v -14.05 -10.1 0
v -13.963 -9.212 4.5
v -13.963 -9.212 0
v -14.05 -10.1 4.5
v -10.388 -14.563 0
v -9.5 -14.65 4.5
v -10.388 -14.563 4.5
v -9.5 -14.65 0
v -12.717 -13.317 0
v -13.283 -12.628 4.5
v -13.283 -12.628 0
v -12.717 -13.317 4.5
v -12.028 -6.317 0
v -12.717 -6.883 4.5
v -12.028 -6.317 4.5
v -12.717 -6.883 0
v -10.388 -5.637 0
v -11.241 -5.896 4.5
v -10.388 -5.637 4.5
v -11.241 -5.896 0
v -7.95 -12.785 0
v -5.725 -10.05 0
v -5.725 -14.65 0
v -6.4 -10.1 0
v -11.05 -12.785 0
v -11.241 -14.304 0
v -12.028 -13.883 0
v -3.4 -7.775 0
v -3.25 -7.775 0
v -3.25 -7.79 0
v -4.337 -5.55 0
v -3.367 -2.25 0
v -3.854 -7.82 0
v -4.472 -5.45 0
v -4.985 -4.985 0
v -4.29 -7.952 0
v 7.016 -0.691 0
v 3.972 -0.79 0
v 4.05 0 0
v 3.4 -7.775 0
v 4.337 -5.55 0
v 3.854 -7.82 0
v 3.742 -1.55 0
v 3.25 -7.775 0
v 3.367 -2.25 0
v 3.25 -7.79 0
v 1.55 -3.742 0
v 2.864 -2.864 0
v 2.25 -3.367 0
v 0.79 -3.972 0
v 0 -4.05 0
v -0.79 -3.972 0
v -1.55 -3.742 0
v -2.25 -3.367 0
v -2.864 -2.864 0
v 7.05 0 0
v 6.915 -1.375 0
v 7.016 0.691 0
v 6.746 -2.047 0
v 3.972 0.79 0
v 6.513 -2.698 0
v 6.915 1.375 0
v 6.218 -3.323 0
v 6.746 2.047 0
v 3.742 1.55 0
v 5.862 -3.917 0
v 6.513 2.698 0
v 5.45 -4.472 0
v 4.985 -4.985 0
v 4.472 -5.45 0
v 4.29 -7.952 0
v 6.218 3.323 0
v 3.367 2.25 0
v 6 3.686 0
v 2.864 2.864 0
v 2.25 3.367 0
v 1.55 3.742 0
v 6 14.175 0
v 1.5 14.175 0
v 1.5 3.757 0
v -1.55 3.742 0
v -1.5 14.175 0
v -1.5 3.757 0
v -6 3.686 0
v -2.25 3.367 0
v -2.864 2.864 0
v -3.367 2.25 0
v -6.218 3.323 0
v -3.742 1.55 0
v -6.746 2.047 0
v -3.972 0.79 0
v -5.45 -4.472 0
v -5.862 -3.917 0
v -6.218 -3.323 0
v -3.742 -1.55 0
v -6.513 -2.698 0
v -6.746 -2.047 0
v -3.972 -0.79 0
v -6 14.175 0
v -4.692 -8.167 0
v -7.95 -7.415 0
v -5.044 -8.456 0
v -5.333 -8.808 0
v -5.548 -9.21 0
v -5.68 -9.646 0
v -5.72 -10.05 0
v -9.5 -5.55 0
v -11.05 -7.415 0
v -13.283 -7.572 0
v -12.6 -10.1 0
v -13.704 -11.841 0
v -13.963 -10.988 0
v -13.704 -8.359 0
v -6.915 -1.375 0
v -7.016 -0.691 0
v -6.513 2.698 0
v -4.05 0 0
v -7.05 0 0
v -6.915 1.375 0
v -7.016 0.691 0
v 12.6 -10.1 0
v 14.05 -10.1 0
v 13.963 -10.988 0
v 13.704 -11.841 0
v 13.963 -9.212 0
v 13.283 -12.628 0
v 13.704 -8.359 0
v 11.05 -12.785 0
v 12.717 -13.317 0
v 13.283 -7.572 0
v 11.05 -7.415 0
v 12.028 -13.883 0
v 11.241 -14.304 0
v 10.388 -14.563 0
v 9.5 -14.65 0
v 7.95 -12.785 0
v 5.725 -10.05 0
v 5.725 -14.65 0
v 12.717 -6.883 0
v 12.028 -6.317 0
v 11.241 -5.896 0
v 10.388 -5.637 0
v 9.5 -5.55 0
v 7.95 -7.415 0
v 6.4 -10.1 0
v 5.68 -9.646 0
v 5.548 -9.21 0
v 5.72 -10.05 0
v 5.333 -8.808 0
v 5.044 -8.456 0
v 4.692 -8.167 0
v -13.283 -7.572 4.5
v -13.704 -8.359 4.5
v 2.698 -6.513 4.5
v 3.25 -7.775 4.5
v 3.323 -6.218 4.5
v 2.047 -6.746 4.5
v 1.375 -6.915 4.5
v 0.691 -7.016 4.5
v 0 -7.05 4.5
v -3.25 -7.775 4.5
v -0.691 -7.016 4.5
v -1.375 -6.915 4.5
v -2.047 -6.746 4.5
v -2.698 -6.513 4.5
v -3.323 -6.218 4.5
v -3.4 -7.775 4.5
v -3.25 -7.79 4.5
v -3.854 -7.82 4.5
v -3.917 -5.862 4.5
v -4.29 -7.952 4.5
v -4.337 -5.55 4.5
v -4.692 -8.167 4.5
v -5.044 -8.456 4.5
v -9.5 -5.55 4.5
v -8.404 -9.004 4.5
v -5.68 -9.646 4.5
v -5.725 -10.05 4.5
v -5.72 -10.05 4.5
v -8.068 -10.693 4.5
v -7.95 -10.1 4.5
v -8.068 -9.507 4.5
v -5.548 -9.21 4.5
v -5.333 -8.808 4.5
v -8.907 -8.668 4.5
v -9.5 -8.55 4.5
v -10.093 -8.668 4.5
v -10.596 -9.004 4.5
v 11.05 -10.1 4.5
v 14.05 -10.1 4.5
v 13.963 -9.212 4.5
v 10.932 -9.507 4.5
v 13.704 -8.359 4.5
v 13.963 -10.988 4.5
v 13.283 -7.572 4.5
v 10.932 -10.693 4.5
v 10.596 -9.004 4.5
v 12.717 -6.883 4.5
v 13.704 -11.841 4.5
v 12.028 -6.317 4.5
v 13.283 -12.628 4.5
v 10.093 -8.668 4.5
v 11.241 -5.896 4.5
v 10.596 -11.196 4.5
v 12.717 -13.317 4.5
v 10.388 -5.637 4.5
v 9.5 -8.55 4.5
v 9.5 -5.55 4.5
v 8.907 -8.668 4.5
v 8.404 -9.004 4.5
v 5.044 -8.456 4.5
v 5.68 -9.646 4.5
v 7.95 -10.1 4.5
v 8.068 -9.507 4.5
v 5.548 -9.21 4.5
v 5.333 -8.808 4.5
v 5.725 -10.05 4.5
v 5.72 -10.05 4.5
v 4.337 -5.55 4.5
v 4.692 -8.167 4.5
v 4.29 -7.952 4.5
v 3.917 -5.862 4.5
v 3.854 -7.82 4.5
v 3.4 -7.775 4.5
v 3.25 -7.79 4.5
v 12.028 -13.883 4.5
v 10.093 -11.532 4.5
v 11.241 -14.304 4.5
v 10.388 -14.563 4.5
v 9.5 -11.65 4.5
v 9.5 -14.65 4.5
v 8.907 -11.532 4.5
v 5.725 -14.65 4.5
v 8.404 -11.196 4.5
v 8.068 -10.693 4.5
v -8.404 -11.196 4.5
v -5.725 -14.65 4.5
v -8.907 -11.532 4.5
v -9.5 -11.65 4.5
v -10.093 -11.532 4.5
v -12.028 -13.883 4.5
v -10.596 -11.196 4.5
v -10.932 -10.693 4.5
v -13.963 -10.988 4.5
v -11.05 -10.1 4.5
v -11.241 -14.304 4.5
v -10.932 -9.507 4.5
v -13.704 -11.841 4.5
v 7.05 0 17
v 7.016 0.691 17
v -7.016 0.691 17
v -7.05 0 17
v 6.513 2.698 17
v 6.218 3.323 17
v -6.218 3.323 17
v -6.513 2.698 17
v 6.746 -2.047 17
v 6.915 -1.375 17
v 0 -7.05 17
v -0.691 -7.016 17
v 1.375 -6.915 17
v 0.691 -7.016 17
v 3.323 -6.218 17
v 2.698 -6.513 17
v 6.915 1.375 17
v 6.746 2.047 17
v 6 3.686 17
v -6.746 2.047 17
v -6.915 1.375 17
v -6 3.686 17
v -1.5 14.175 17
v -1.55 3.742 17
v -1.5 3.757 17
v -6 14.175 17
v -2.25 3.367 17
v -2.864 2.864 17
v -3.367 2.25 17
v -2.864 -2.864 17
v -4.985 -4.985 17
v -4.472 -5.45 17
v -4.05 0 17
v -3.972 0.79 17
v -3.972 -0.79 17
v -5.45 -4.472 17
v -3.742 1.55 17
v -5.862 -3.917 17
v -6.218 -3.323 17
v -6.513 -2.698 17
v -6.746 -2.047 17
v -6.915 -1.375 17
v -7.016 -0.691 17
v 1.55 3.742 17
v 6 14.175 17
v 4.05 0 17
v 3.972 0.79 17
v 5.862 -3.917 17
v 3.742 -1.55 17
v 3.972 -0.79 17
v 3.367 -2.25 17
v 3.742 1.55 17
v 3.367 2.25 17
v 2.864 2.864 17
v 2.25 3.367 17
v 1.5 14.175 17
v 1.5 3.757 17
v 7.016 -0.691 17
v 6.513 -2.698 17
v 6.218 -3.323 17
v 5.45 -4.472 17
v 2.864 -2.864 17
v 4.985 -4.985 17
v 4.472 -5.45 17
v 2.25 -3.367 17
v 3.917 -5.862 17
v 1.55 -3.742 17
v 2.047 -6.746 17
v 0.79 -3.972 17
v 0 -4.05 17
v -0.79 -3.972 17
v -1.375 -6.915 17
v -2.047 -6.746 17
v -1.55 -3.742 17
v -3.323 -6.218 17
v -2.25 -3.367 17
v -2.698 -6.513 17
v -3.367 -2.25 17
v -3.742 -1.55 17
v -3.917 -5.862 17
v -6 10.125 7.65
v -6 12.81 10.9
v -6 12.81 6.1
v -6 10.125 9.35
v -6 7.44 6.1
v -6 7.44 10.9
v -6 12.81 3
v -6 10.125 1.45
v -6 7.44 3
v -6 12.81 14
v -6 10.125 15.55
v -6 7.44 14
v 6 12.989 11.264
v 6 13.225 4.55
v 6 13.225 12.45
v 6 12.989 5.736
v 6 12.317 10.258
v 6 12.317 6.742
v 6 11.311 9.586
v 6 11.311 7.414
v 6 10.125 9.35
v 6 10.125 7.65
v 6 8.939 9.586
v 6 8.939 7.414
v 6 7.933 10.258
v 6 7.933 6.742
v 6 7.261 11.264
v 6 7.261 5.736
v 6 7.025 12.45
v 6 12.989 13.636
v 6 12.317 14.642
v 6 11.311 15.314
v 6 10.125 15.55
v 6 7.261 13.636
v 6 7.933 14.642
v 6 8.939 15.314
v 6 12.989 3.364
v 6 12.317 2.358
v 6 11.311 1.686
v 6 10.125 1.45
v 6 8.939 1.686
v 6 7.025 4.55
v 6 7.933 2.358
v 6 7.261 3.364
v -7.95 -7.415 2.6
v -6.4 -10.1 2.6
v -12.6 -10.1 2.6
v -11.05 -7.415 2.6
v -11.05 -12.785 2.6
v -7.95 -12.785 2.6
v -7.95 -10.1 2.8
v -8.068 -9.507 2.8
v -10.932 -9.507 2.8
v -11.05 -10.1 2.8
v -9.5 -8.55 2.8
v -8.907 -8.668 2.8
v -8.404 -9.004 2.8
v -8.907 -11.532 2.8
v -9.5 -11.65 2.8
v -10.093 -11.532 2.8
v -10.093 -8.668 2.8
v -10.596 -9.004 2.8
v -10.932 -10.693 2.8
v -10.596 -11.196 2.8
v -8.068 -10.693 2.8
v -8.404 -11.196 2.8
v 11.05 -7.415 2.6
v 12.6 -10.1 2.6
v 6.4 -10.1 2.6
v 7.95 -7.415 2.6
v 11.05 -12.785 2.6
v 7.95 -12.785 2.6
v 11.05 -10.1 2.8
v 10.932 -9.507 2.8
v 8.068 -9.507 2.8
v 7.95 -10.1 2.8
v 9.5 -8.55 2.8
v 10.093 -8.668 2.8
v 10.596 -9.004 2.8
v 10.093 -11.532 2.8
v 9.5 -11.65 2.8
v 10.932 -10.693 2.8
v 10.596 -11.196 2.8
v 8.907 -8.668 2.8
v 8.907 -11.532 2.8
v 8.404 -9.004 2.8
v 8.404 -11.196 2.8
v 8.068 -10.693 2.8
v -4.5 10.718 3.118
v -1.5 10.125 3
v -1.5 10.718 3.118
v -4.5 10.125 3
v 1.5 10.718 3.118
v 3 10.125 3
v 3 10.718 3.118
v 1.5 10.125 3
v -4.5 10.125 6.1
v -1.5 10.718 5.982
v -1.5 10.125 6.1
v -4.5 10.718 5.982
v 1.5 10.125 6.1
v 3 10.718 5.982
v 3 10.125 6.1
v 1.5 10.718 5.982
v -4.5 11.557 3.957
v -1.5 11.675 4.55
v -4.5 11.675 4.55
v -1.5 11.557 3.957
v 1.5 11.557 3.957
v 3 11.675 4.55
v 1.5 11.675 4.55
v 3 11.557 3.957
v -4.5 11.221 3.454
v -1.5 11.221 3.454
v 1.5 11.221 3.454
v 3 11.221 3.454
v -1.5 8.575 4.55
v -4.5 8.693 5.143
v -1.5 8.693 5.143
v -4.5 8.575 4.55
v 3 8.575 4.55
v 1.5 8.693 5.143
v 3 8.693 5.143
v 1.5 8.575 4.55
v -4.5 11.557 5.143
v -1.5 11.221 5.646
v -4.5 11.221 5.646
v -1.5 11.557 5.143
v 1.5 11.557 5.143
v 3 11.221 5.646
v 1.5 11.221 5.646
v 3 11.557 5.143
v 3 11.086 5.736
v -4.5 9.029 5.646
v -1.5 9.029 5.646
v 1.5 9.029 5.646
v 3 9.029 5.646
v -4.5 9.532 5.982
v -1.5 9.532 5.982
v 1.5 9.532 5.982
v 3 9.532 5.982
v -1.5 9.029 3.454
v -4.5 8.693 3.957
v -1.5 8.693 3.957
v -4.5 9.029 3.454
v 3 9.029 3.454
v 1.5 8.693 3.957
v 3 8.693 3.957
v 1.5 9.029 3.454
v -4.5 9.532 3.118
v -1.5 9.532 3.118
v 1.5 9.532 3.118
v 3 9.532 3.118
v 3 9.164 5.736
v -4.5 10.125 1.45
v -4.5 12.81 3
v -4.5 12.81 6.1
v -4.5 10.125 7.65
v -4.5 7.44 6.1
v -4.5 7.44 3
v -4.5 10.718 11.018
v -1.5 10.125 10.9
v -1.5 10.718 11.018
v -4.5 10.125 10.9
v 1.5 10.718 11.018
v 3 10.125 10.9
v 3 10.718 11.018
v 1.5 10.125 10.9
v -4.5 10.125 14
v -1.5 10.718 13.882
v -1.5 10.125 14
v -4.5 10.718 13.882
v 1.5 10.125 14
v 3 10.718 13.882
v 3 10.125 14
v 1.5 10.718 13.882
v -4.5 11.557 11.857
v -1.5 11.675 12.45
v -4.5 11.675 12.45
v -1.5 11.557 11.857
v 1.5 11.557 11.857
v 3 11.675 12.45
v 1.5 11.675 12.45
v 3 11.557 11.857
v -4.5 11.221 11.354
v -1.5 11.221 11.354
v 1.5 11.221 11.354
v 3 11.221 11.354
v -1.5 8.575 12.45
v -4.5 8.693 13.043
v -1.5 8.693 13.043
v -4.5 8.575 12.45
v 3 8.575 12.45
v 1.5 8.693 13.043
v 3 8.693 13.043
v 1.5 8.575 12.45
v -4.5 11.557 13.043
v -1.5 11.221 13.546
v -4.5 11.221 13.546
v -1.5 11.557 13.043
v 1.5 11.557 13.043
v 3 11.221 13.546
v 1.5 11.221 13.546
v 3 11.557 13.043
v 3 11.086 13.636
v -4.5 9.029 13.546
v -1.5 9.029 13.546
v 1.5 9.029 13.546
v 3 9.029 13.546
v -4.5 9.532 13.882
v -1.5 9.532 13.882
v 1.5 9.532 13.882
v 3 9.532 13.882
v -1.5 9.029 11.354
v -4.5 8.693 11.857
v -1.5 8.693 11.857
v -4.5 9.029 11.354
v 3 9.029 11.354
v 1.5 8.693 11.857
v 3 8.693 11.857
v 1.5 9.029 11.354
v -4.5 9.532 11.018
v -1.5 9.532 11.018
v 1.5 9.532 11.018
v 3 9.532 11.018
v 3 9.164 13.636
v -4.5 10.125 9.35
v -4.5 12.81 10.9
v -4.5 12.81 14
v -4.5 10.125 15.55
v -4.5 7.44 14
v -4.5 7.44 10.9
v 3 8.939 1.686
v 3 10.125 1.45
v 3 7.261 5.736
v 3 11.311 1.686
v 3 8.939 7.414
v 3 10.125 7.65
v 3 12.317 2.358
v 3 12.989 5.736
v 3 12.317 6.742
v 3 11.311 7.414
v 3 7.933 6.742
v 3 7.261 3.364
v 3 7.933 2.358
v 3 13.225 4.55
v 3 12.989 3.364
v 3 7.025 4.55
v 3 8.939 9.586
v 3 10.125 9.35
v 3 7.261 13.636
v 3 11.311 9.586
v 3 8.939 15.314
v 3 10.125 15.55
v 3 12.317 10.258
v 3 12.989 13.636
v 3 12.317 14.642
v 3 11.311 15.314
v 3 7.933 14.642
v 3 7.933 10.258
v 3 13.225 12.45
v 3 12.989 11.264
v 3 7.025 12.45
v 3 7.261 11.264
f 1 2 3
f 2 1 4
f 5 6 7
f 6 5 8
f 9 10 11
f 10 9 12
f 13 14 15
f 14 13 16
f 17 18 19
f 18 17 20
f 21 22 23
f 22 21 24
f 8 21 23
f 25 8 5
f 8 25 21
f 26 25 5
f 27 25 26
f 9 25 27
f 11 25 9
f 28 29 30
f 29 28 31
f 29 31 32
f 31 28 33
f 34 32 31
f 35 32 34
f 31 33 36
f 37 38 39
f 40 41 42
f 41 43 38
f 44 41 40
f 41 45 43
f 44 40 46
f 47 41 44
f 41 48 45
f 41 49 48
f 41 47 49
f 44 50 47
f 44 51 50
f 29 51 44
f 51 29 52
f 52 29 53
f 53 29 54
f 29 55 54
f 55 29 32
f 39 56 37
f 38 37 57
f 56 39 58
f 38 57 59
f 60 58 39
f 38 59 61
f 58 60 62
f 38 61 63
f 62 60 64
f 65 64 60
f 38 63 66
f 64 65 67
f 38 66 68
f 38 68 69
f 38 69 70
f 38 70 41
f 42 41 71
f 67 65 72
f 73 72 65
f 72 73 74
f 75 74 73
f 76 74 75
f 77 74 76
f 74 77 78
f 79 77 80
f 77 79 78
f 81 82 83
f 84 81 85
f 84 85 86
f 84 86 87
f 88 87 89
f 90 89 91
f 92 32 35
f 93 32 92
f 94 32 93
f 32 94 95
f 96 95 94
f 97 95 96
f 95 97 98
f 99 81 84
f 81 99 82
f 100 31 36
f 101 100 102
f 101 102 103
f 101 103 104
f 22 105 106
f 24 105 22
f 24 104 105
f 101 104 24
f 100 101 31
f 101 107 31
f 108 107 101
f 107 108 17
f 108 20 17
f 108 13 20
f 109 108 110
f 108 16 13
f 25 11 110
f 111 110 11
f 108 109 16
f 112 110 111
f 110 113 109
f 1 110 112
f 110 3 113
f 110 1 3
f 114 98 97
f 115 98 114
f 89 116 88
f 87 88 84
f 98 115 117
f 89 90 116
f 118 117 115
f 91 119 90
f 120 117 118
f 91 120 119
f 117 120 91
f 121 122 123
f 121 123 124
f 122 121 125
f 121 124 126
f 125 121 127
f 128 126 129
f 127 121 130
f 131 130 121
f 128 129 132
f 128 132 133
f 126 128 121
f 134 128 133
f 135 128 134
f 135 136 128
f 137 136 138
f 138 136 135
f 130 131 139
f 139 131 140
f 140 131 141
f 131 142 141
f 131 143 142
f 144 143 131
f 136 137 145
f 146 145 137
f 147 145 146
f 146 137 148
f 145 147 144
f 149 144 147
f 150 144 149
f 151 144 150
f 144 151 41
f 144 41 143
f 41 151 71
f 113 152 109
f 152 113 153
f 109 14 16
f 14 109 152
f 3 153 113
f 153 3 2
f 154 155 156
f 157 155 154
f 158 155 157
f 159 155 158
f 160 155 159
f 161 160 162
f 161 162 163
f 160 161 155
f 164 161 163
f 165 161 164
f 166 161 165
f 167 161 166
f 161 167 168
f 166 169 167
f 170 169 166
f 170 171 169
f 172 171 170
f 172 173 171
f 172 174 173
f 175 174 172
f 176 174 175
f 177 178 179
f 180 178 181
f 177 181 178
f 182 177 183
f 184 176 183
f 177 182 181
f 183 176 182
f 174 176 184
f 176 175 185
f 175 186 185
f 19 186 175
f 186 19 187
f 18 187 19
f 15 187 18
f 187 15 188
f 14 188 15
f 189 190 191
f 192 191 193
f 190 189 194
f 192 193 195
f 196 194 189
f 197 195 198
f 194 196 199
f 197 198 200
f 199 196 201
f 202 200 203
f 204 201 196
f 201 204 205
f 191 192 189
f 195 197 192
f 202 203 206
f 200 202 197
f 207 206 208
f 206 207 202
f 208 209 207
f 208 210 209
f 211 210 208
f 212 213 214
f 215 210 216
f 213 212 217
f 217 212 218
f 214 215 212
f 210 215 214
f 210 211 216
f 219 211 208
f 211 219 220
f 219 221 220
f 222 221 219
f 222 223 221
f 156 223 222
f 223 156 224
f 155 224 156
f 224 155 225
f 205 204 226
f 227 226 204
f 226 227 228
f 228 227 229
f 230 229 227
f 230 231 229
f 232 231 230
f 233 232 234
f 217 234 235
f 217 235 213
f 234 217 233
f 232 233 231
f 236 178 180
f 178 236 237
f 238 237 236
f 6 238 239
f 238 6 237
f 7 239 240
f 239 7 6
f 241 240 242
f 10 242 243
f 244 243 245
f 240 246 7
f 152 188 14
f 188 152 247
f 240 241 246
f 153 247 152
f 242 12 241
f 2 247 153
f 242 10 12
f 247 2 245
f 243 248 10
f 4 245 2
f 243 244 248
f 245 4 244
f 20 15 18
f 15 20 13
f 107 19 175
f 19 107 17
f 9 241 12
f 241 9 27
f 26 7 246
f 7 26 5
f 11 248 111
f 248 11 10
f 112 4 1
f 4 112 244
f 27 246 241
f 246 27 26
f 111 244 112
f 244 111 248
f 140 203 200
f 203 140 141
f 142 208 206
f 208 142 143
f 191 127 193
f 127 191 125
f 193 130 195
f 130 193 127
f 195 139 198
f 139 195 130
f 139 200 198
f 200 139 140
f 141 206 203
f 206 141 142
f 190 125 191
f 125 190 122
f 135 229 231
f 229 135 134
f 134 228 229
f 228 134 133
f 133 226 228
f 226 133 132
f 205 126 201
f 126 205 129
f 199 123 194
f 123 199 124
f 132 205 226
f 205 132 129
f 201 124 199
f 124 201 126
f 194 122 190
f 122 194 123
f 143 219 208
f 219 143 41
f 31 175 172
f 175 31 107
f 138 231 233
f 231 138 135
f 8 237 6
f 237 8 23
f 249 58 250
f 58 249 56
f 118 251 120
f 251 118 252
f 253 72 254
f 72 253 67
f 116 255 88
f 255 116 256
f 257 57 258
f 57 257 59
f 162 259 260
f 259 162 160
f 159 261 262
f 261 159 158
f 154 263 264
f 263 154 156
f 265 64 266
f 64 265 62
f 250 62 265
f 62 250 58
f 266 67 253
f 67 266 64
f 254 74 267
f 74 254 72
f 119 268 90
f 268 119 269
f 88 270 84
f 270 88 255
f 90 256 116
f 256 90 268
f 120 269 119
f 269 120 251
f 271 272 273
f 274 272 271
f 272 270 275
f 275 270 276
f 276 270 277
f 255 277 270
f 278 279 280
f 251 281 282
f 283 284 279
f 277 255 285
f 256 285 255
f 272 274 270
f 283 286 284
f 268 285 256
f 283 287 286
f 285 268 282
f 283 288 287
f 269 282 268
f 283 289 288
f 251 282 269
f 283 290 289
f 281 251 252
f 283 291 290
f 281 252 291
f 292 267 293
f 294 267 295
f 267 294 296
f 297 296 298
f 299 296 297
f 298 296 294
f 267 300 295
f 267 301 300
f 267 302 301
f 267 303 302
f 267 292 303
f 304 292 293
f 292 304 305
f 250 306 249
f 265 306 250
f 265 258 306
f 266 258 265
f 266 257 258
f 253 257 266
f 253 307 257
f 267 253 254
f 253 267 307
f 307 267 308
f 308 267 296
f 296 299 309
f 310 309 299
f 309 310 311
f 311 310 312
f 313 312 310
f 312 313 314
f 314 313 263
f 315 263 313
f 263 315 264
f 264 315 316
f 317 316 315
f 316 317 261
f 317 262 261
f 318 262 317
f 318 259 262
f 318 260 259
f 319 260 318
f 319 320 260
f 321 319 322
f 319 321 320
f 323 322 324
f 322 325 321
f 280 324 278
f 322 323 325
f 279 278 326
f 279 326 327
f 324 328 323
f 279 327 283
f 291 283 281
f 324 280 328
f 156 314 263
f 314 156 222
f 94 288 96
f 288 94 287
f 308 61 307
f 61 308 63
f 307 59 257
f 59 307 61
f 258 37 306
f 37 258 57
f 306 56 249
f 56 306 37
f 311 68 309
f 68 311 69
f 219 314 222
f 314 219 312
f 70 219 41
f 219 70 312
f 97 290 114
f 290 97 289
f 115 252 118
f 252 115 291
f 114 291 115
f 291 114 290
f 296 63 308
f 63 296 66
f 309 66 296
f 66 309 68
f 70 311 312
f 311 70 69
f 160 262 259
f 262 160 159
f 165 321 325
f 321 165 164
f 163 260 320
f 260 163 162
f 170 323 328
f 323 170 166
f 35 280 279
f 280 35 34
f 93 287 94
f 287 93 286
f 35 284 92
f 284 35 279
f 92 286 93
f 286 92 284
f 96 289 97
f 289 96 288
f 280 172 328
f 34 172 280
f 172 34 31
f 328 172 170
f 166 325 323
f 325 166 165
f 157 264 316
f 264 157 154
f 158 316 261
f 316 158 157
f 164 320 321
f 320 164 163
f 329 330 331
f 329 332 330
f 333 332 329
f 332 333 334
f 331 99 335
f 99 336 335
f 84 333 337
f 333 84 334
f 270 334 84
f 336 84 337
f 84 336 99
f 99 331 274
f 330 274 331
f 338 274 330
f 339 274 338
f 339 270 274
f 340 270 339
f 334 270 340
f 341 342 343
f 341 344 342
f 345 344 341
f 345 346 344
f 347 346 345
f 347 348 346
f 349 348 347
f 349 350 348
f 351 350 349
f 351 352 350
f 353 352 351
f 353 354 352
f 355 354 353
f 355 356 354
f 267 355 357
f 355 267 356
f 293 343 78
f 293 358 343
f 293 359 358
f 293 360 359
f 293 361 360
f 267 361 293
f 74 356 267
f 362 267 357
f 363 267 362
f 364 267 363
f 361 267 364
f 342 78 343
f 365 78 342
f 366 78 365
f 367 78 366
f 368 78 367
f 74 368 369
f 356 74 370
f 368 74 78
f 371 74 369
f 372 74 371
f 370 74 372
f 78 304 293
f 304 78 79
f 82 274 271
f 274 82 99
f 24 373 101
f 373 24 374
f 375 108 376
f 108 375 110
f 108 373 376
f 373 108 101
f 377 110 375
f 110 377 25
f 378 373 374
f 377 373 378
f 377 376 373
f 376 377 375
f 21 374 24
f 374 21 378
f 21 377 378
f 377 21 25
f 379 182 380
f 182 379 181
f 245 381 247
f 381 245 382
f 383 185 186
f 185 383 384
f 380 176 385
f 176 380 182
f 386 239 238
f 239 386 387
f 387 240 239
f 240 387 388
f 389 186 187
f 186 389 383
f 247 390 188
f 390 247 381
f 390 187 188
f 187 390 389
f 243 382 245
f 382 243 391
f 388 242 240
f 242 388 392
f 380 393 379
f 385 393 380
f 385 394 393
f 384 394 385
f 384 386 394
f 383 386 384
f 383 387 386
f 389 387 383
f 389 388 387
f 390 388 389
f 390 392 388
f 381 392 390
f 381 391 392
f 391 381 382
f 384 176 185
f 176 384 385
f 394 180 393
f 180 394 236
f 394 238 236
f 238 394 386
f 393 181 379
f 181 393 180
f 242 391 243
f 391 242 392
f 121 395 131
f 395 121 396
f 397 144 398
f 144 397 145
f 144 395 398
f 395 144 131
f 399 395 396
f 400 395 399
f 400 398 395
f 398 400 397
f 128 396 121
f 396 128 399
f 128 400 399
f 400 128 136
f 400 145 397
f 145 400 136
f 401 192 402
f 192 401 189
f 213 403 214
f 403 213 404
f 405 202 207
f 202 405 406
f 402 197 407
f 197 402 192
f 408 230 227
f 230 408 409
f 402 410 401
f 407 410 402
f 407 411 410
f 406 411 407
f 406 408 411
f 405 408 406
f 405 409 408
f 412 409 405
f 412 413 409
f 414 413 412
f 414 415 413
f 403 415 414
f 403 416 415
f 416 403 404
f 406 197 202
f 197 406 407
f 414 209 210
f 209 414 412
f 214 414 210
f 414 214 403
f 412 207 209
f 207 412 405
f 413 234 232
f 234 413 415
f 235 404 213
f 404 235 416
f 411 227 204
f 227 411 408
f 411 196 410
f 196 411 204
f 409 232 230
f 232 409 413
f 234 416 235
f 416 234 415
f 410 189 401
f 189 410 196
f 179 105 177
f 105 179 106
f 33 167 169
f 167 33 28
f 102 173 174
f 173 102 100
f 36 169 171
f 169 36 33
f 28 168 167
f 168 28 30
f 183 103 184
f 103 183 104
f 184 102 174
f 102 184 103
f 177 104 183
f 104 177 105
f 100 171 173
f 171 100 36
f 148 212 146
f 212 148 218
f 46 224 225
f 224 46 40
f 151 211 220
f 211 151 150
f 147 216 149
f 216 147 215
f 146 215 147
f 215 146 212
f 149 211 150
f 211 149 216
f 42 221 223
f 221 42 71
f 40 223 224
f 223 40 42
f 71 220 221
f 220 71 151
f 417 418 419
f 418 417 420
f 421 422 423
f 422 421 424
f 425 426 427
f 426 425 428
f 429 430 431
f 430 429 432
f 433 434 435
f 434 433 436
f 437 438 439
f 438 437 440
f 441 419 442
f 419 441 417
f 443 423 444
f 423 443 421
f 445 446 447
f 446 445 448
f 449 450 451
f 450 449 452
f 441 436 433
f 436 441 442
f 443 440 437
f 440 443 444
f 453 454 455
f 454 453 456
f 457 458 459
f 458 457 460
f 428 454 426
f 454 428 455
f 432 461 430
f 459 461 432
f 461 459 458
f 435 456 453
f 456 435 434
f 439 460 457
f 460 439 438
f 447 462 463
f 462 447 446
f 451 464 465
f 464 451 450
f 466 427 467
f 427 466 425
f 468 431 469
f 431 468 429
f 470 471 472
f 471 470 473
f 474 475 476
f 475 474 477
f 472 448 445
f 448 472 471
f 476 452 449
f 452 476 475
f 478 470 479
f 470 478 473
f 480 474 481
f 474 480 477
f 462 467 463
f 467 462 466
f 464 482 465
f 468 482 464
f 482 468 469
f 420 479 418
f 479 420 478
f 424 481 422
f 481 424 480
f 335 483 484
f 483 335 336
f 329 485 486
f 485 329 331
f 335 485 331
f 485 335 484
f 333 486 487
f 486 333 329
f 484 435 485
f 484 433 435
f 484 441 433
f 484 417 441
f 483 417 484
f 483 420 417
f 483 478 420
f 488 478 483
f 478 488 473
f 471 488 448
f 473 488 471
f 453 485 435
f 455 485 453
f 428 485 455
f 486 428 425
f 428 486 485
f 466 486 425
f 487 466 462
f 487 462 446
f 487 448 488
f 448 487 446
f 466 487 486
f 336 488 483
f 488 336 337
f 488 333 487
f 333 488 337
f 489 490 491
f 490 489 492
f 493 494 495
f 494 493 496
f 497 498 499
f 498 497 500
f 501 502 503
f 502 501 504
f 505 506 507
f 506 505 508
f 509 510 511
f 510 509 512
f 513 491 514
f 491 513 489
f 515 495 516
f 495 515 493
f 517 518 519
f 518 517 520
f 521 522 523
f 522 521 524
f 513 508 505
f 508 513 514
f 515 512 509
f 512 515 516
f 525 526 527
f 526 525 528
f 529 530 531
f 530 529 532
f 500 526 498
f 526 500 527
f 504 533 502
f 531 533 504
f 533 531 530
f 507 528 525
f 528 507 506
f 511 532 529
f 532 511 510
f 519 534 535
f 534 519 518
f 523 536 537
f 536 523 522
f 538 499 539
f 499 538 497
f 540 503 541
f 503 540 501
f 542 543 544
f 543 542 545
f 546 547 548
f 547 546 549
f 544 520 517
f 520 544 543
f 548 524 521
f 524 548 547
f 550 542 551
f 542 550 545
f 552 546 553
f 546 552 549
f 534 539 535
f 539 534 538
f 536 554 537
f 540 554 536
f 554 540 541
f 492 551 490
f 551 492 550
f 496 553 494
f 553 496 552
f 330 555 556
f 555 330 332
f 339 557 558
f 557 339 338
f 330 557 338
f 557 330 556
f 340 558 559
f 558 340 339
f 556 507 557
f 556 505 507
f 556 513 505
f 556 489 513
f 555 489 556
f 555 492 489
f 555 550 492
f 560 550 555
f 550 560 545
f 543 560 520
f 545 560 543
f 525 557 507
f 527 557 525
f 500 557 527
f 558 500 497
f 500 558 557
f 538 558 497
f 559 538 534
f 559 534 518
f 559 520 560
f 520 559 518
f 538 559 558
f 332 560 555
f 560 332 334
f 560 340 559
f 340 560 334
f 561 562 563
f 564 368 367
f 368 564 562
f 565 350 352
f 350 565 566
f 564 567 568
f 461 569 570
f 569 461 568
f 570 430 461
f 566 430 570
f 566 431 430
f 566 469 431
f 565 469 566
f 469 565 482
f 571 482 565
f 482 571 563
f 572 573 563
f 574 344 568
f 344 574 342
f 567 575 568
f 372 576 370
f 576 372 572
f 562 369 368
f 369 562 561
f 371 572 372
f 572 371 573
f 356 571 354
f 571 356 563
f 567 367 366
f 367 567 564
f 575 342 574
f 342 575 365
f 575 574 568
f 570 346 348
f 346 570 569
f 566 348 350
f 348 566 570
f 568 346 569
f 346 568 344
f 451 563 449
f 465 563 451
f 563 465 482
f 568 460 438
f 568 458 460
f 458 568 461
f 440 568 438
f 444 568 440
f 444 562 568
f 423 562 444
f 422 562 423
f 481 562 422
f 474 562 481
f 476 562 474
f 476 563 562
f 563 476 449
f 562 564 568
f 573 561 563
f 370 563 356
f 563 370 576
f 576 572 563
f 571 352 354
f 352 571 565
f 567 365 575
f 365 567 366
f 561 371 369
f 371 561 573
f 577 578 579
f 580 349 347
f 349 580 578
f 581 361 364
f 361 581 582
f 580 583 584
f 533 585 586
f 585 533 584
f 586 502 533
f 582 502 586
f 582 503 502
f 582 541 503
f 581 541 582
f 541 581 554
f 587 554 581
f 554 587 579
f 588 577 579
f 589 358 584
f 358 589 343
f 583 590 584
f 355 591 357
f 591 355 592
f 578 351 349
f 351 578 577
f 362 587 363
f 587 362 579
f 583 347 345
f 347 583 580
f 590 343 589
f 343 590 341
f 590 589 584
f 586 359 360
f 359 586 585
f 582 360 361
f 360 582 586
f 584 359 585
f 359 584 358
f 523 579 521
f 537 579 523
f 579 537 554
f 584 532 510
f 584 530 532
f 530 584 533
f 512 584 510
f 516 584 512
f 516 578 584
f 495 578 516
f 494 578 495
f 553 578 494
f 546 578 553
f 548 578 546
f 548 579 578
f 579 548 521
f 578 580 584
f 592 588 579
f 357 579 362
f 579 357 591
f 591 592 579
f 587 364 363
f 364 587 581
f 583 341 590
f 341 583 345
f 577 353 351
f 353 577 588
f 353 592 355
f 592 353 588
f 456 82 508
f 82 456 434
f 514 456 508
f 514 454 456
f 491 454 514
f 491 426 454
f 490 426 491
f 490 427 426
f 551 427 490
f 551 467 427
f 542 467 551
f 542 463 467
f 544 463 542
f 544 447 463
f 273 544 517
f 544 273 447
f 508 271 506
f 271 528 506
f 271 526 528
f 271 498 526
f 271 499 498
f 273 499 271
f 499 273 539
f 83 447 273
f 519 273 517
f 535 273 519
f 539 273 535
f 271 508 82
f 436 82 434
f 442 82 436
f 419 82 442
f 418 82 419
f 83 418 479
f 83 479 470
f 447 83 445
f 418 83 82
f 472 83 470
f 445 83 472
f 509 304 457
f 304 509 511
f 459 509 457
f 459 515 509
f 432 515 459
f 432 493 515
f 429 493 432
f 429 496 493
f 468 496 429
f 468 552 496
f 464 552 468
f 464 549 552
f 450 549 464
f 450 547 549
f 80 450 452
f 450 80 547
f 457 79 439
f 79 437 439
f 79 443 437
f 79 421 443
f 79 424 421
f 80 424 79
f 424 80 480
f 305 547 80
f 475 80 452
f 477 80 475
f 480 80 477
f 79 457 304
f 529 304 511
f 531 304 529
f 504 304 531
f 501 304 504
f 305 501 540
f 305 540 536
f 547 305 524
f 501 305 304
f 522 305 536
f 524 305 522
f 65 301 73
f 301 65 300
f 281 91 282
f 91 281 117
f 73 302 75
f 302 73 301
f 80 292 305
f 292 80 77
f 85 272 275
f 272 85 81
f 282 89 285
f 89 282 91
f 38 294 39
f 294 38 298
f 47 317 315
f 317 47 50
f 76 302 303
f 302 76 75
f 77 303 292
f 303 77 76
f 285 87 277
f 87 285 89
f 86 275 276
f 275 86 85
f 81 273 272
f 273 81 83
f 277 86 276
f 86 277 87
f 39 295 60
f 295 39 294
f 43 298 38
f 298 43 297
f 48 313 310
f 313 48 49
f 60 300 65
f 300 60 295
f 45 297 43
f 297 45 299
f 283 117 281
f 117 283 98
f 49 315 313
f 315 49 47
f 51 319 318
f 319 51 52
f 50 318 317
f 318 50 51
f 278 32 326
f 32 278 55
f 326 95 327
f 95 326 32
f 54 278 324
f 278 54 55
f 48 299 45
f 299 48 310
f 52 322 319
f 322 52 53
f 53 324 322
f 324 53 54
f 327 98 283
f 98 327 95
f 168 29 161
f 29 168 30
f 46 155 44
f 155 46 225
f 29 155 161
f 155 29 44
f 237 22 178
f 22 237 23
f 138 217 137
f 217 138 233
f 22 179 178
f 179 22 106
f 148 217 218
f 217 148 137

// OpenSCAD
screwhole_diameter = 3.1;
screwhole_distance = 19;
nut_diameter=6.2;
wall_thickness = 3;
rod_diameter = 8.1;
height = 17;

module clamp() {
    difference() {
        union() {
            cylinder(d=rod_diameter+2*wall_thickness, h=height, $fn=64);
            translate([-4*wall_thickness/2, 0, 0]) {
                cube([4*wall_thickness, 1.75*rod_diameter, height]);
            }
            difference() {
                union() {
                    translate([-screwhole_distance/2, -rod_diameter/2-2.5*wall_thickness-screwhole_diameter, 0]) {
                       cube([screwhole_distance, screwhole_diameter+2*wall_thickness, 4.5]);
                    }
                    for(i=[-1, 1]) {
                        translate([i*screwhole_distance/2, -rod_diameter/2-1.5*wall_thickness-screwhole_diameter/2, 0]) {
                            cylinder(d=screwhole_diameter+2*wall_thickness, h=4.5, $fn=32);
                        }
                    }
                }
            }
        }
        translate([-wall_thickness/2, 0, -1]) {
            cube([wall_thickness, 2*rod_diameter+1, height+2]);
        }
        translate([0, 0, -1]) {
            cylinder(d=rod_diameter, h=height+2, $fn=32);
        }
        for(i=[-1, 1]) {
            translate([i*screwhole_distance/2, -rod_diameter/2-1.5*wall_thickness-screwhole_diameter/2, 0]) {
                translate([0, 0, -1]) cylinder(d=nut_diameter, h=3.6, $fn=6);
                translate([0, 0, 2.8]) cylinder(d=screwhole_diameter, h=height+1, $fn=16);
            }
        }
        for(i=[-1, 1]) {
            translate([i*(screwhole_distance/2-wall_thickness-screwhole_diameter/4-1.5*screwhole_diameter/2), -rod_diameter/2-1.5*wall_thickness-screwhole_diameter/2, -1]) {
                cylinder(d=1.5*screwhole_diameter, h=height+1, $fn=32);
            }
        }
        translate([0, -rod_diameter/2-1.5*wall_thickness-screwhole_diameter/2, height/2]) {
            cube([screwhole_distance/2-wall_thickness, 1.5*screwhole_diameter, height+1], center=true);
        }
        translate([0, -rod_diameter/2-3*wall_thickness-screwhole_diameter/2, height/2]) {
            cube([screwhole_distance-2*wall_thickness-screwhole_diameter/2, 2*wall_thickness+screwhole_diameter, height+1], center=true);
        }
        for(i=[wall_thickness+screwhole_diameter/2, height-wall_thickness-screwhole_diameter/2]) {
            translate([-rod_diameter, 1.25*rod_diameter, i]) {
                rotate([0, 90, 0]) {
                    cylinder(d=screwhole_diameter, h=2*rod_diameter, $fn=16);
                    cylinder(d=nut_diameter, h=rod_diameter-1.5*wall_thickness, $fn=6);
                }
            }
            translate([wall_thickness, 1.25*rod_diameter, i]) {
                rotate([0, 90, 0]) {
                    cylinder(d=nut_diameter, h=rod_diameter-1.5*wall_thickness, $fn=16);
                }
            }
        }
    }
}

/*for(i=[0, 90, 180]) {
    rotate([0, 0, i]) {
        translate([17, 10, 0]) {
            clamp();
        }
    }
}*/
clamp();
